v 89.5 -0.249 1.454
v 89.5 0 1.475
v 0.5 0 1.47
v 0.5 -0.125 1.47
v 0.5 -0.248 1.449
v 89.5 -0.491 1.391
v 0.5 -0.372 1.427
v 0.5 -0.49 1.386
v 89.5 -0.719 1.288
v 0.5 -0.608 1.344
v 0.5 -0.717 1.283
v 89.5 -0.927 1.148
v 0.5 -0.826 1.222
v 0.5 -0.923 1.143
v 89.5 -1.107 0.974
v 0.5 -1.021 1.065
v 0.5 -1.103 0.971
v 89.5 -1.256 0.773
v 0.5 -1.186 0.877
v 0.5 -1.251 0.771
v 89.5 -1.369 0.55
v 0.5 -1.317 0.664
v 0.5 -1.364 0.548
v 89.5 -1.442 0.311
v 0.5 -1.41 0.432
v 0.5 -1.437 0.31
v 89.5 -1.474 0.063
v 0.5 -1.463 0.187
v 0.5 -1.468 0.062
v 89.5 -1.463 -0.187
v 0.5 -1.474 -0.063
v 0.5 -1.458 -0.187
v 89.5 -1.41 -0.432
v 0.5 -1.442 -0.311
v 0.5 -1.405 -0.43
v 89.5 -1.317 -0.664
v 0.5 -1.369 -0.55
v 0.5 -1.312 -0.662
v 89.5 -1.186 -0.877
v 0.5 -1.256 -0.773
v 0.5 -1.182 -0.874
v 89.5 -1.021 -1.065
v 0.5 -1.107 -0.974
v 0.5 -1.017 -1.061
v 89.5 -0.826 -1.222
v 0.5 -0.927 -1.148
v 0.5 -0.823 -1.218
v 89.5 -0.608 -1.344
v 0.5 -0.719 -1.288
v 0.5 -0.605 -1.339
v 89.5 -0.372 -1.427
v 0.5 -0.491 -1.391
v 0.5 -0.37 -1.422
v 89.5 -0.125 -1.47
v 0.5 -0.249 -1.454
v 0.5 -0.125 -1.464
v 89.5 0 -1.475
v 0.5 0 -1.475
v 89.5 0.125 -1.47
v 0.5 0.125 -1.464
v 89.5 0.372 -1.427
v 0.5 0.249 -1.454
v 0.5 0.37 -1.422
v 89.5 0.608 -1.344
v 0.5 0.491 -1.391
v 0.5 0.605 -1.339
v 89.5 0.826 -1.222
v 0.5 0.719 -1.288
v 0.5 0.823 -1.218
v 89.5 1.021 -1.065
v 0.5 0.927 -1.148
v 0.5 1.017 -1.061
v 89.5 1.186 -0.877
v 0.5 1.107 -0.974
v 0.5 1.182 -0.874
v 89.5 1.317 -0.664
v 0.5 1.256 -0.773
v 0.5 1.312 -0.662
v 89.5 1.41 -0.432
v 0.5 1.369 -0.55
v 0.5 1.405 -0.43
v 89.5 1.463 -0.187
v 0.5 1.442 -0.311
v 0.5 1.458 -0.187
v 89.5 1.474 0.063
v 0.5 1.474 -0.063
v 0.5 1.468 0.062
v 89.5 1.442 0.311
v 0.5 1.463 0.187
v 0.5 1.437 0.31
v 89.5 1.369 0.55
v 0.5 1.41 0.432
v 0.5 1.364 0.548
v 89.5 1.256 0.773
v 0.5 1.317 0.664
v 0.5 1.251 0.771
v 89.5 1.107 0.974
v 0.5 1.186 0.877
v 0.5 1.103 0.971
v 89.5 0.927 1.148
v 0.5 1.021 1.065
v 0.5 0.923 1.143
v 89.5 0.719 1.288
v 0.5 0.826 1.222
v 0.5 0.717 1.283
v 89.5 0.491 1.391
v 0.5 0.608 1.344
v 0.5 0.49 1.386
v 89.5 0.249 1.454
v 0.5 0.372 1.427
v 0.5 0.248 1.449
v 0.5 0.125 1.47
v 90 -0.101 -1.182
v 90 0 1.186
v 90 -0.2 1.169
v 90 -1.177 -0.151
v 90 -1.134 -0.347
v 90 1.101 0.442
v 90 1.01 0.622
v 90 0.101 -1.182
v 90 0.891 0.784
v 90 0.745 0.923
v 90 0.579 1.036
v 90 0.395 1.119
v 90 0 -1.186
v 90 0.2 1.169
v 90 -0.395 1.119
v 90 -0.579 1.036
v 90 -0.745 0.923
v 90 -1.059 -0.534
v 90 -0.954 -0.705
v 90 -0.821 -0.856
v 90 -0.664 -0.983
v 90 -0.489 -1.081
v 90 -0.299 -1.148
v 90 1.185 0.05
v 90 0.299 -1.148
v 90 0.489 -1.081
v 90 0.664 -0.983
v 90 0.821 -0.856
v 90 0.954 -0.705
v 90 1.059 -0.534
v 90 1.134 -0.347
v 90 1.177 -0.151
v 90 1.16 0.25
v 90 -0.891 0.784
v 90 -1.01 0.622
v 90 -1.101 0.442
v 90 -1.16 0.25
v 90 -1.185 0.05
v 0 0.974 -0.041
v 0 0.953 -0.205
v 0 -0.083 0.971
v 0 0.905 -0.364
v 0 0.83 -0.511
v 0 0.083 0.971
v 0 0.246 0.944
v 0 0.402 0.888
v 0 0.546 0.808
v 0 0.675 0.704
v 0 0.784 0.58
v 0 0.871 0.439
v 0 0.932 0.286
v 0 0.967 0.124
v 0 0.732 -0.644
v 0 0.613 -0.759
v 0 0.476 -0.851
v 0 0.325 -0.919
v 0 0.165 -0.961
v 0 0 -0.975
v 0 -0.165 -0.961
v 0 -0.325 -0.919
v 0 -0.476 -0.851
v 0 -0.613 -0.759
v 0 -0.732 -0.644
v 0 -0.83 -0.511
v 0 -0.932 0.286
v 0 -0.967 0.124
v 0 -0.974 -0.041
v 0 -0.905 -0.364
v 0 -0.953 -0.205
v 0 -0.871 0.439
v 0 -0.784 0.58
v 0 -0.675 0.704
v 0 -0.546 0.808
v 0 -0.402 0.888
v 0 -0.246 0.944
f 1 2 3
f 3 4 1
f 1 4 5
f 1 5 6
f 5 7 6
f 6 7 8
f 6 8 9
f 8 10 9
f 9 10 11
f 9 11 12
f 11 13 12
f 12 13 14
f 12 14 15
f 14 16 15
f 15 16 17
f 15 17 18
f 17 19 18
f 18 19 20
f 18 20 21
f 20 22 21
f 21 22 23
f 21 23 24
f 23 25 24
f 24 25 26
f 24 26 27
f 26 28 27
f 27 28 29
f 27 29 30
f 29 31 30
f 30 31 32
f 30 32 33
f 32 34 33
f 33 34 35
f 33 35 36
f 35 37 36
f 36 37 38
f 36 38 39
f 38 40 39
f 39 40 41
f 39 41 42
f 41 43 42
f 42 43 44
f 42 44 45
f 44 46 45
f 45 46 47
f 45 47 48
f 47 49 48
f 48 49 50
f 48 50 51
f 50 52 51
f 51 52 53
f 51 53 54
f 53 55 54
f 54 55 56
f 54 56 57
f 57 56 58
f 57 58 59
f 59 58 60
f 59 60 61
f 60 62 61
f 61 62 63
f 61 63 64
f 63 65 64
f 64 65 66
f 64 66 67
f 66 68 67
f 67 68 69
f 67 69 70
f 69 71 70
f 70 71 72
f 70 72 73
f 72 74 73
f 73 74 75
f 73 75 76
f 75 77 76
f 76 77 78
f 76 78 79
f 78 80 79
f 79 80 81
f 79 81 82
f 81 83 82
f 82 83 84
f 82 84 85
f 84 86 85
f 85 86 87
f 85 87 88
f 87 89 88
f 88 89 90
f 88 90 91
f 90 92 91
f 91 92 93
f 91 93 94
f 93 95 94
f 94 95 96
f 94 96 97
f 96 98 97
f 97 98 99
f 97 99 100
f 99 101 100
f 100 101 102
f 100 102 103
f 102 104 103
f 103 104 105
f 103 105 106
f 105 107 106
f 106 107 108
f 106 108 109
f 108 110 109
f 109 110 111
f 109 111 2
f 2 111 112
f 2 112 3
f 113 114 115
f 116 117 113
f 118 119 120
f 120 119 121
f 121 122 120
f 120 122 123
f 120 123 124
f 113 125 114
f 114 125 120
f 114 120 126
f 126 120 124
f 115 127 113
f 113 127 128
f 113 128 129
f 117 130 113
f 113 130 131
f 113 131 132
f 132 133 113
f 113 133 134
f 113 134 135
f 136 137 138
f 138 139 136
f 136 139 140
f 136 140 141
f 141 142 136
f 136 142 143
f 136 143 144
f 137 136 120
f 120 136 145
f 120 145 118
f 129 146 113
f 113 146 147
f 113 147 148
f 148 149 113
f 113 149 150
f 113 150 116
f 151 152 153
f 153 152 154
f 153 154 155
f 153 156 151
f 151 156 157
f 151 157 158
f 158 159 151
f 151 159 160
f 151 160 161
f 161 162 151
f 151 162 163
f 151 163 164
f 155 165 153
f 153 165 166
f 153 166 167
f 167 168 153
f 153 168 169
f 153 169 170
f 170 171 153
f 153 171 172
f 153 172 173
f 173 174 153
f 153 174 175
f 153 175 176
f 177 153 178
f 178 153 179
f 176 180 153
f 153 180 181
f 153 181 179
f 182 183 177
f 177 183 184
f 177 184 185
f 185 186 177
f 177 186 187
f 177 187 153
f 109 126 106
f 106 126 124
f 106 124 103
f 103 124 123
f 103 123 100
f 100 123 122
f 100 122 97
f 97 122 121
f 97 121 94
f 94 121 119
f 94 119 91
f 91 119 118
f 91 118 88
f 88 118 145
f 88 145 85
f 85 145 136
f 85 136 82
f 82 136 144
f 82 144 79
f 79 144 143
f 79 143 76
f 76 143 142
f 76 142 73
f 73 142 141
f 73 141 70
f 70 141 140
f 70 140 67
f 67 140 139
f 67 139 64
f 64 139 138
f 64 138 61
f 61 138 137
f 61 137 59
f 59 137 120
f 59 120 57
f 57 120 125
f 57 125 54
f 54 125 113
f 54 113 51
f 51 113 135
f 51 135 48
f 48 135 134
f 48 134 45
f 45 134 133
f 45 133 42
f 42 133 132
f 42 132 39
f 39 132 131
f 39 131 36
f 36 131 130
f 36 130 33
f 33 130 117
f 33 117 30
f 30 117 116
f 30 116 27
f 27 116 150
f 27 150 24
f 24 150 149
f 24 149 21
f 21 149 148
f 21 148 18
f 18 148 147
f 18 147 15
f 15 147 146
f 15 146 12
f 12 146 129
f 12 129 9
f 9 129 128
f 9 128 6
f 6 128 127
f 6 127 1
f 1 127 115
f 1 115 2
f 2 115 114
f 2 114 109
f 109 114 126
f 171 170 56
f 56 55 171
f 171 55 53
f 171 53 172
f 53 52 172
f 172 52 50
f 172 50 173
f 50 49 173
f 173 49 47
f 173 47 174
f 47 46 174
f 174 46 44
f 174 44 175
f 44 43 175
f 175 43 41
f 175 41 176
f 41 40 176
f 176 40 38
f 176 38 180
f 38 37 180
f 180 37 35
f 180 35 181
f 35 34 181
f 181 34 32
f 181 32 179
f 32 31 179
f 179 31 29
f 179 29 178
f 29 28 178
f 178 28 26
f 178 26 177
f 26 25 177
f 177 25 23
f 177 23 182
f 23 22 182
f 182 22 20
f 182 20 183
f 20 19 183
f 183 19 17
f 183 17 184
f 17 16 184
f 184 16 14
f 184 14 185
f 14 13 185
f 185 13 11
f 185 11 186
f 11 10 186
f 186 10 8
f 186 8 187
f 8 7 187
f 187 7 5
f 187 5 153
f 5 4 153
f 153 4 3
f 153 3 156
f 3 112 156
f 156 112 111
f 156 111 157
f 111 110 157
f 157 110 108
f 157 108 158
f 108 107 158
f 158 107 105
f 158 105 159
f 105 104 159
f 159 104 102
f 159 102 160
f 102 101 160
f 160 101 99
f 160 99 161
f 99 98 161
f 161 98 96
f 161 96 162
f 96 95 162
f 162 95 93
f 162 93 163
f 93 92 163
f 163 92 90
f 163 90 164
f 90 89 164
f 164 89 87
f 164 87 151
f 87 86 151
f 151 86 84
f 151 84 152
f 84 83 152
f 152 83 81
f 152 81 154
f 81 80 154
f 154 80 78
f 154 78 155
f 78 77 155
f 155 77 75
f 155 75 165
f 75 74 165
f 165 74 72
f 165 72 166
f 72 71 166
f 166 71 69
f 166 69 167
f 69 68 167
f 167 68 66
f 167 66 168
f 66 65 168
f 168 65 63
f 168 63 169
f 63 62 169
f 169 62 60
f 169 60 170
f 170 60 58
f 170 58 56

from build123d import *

# Parameters (mm, degrees)
CROQUIS1_R              = 1.475
SALIENTE_EXTRUIR1_DEPTH = 90
CHAFL_N1_SIZE           = 0.5
CHAFL_N1_SIZE2          = 0.288675135
CHAFL_N2_SIZE           = 0.5


with BuildPart() as part:
    # Croquis1 → Saliente-Extruir1 (new body)
    with BuildSketch(Plane(origin=(0, 0, 0), x_dir=(0, 0, -1), z_dir=(1, 0, 0))):
        with Locations(Location((0, 0, 0), (0, 0, 180))):
            Circle(CROQUIS1_R)
    extrude(amount=SALIENTE_EXTRUIR1_DEPTH)

    # Chaflán1
    chafl_n1_edges = [part.edges().sort_by_distance(p)[0] for p in [
        (90, 0, -1.475),
    ]]
    chafl_n1_side = [part.faces().sort_by_distance(p)[0] for p in [
        (45, 0, -1.475),
    ]]
    chamfer(chafl_n1_edges, length=CHAFL_N1_SIZE, length2=CHAFL_N1_SIZE2, reference=chafl_n1_side[0])

    # Chaflán2
    chafl_n2_edges = [part.edges().sort_by_distance(p)[0] for p in [
        (0, 0, -1.475),
    ]]
    chamfer(chafl_n2_edges, length=CHAFL_N2_SIZE)


solid = part.part
